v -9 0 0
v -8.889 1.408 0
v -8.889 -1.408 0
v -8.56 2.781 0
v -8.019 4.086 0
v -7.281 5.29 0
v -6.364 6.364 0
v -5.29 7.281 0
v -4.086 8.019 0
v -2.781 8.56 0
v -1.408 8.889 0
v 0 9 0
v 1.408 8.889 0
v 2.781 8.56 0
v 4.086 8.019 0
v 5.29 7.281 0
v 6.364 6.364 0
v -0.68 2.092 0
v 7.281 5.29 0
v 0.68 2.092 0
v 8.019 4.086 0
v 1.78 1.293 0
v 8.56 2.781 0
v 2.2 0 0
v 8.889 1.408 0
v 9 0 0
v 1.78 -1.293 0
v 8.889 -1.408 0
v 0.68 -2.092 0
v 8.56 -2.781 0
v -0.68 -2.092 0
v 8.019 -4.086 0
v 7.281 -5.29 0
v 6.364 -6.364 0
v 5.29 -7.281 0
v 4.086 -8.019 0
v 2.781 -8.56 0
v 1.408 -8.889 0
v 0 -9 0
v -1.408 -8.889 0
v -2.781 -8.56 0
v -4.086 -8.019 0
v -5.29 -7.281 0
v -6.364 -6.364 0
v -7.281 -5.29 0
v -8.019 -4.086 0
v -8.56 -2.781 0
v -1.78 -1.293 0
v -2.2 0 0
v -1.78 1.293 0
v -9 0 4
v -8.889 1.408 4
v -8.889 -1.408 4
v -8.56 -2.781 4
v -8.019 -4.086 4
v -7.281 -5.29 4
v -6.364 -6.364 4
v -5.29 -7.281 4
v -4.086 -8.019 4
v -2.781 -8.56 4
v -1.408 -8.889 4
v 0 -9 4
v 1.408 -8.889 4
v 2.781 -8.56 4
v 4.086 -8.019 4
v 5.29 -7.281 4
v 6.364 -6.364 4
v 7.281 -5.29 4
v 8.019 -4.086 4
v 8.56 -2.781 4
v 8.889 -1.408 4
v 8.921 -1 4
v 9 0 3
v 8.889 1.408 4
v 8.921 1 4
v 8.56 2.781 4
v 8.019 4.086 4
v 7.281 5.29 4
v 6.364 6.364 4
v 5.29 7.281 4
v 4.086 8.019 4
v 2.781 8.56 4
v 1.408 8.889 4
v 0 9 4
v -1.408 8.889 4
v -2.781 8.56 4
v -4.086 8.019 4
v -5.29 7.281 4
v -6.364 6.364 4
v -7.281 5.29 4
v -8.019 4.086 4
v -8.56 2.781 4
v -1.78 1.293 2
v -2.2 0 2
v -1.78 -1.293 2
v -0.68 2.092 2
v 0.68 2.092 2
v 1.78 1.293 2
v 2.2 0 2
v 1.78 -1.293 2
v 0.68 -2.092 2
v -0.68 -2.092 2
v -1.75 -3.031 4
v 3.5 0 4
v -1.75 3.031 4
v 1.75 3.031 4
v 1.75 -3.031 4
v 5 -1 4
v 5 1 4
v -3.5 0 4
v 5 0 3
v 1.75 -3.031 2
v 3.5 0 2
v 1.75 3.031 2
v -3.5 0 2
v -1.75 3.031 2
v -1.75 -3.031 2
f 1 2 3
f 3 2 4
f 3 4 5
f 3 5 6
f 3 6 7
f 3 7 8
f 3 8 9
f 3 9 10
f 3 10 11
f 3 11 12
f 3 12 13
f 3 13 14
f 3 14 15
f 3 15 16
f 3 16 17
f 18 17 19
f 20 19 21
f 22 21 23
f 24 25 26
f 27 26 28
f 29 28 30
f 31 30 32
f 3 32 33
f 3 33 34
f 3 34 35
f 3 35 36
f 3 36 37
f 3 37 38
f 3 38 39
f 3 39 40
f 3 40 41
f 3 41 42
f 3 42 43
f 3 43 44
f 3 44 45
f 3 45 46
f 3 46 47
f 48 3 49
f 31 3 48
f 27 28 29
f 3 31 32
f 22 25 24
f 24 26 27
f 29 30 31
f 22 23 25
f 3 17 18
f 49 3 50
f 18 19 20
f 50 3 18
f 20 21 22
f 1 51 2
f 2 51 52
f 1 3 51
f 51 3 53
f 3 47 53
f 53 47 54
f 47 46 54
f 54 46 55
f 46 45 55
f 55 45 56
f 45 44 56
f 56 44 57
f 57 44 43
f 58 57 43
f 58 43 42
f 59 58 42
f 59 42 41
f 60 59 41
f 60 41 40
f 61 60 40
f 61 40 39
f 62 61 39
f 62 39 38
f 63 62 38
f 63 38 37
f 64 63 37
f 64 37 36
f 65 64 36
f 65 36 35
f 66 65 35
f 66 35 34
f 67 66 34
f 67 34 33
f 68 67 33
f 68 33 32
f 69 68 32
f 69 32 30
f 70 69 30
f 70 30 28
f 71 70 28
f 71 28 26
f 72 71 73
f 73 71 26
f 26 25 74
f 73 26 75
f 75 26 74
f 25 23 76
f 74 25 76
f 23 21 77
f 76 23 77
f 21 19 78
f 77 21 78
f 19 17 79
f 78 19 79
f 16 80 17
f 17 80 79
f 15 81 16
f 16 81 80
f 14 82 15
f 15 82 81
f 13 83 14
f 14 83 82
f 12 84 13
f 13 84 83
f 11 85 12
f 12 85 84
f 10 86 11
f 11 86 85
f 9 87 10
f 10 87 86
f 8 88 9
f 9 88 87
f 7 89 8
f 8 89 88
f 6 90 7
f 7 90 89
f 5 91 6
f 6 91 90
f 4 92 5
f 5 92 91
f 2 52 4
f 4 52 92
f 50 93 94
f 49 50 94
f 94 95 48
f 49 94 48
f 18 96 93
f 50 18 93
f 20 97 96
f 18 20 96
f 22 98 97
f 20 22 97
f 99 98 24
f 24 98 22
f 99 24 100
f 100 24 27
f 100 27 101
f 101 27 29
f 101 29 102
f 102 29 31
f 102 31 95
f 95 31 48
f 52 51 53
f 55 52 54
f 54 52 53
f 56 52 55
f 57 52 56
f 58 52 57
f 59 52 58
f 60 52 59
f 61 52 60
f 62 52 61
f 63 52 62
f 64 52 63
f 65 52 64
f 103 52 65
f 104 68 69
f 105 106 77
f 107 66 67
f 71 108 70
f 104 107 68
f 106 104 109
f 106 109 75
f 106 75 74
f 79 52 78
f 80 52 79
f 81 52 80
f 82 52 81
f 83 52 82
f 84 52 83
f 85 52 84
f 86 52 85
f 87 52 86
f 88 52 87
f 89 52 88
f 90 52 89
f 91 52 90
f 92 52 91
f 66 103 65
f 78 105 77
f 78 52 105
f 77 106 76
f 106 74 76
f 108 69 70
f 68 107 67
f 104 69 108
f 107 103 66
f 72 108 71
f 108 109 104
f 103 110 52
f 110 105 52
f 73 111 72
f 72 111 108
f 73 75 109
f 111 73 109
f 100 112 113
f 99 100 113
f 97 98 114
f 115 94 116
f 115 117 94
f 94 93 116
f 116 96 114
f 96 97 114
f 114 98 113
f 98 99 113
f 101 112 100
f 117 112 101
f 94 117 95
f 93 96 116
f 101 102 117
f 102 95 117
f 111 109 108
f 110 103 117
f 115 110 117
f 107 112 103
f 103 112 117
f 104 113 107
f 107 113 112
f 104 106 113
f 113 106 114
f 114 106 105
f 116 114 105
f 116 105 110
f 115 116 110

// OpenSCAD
// file: functions.scad
// PRUSA Mendel  
// Functions used in many files
// GNU GPL v3
// Josef Průša
// josefprusa@me.com
// prusadjs.cz
// http://www.reprap.org/wiki/Prusa_Mendel
// http://github.com/prusajr/PrusaMendel


module nut(d,h,horizontal=true){
cornerdiameter =  (d / 2) / cos (180 / 6);
cylinder(h = h, r = cornerdiameter, $fn = 6);
if(horizontal){
for(i = [1:6]){
	rotate([0,0,60*i]) translate([-cornerdiameter-0.2,0,0]) rotate([0,0,-45]) cube(size = [2,2,h]);
}}
}

// Based on nophead research
module polyhole(d,h) {
    n = max(round(2 * d),3);
    rotate([0,0,180])
        cylinder(h = h, r = (d / 2) / cos (180 / n), $fn = n);
}




module roundcorner(diameter){
	difference(){
		cube(size = [diameter,diameter,99], center = false);
		translate(v = [diameter, diameter, 0]) cylinder(h = 100, r=diameter, center=false,$fn = max(3*diameter,20));
	}
}
// file: configuration.scad
// PRUSA Mendel  
// Configuration file
// GNU GPL v2
// Josef Pra
// josefprusa@me.com
// prusadjs.cz
// http://www.reprap.org/wiki/Prusa_Mendel
// http://github.com/prusajr/PrusaMendel


// PLEASE SELECT ONE OF THE CONFIGURATIONS BELOW
// BY UN-COMMENTING IT


variant=0; //0 for metric
//variant=1; //1 for SAE
if(variant==0){
echo("variant: metric");
}else if(variant==1){
echo("variant: sae");
} else{
echo("WARNING: INVALID CONFIGURATION");
}




vars=[
//[m8_dia,m8_nut, m4_dia, m4_nut, m3_dia, m3_nut, bush_dia, mot_shaft, bush_rod, bush_outerdia, bush_length, m5_dia, m5_nut]
[9, 16.4, 5,9, 4.4, 7, 11, 5.3, 8, 16, 11, 5.6, 10],//metric
[9,15.7,5.5,10.6,5.5,10.6,11.5,5.3,7.9375,16,11,5.6, 10]//SAE
];


//BUSHING TYPE Can generate three versions
// 1 - regular old ones
// 2 - helical ones
// 3 - holders for brass or any other bought bushings
bushing_type = 2;


//Round corner diameter
round_corner_diameter = 8;


//Thin wall size
layer_height = 0.4;
perimeter_width_over_thicknes = 1.6;
infill_widht_over_thickness = 1.55;
thin_wall = 2*(perimeter_width_over_thicknes*layer_height+infill_widht_over_thickness*layer_height);
if(thin_wall<2){
	echo("Check thin wall size, its below 2mm!");
}
echo(thin_wall);


//DO NOT TOUCH THIS SECTION!
m8_diameter = vars[variant][0];
m8_nut_diameter = vars[variant][1];
m4_diameter = vars[variant][2];
m4_nut_diameter = vars[variant][3];
m3_diameter = vars[variant][4];
m3_nut_diameter = vars[variant][5];
bushing_diameter = vars[variant][6];
motor_shaft=vars[variant][7];
bushing_rodsize = vars[variant][8];
bushing_outerDiameter = vars[variant][9];
bushing_lenght = vars[variant][10];
m5_diameter = vars[variant][11];
m5_nut_diameter = vars[variant][12];



// MINI-HUXLEY VERSION (TODO, just place holder)
// include <configuration-huxley.scad>


// MEGA VERSION (TODO, just place holder)
// include <configuration-mega.scad>

// Gap between the X rods

x_rod_centres=70;


// Some basic functions, probably should be somewhere else
module roundcorner(diameter){
	difference(){
		cube(size = [diameter,diameter,99], center = false);
		translate(v = [diameter, diameter, 0]) cylinder(h = 100, r=diameter, center=true);
	}
}

include <functions.scad>
// main file
/*

Thumb wheel for Z endstop adjuster.

Adrian 12 Feb 2012

Licence: GPL

*/

include <configuration.scad>

difference()
{
	cylinder(r=9,h=4,$fn=40);
	cylinder(r=m3_diameter/2,h=40,$fn=10);
	translate([0,0,2])
		cylinder(r=m3_nut_diameter/2,h=4,$fn=6);
	translate([5,0,3])
		rotate([45,0,0])
			cube([20,3,3]);
}
